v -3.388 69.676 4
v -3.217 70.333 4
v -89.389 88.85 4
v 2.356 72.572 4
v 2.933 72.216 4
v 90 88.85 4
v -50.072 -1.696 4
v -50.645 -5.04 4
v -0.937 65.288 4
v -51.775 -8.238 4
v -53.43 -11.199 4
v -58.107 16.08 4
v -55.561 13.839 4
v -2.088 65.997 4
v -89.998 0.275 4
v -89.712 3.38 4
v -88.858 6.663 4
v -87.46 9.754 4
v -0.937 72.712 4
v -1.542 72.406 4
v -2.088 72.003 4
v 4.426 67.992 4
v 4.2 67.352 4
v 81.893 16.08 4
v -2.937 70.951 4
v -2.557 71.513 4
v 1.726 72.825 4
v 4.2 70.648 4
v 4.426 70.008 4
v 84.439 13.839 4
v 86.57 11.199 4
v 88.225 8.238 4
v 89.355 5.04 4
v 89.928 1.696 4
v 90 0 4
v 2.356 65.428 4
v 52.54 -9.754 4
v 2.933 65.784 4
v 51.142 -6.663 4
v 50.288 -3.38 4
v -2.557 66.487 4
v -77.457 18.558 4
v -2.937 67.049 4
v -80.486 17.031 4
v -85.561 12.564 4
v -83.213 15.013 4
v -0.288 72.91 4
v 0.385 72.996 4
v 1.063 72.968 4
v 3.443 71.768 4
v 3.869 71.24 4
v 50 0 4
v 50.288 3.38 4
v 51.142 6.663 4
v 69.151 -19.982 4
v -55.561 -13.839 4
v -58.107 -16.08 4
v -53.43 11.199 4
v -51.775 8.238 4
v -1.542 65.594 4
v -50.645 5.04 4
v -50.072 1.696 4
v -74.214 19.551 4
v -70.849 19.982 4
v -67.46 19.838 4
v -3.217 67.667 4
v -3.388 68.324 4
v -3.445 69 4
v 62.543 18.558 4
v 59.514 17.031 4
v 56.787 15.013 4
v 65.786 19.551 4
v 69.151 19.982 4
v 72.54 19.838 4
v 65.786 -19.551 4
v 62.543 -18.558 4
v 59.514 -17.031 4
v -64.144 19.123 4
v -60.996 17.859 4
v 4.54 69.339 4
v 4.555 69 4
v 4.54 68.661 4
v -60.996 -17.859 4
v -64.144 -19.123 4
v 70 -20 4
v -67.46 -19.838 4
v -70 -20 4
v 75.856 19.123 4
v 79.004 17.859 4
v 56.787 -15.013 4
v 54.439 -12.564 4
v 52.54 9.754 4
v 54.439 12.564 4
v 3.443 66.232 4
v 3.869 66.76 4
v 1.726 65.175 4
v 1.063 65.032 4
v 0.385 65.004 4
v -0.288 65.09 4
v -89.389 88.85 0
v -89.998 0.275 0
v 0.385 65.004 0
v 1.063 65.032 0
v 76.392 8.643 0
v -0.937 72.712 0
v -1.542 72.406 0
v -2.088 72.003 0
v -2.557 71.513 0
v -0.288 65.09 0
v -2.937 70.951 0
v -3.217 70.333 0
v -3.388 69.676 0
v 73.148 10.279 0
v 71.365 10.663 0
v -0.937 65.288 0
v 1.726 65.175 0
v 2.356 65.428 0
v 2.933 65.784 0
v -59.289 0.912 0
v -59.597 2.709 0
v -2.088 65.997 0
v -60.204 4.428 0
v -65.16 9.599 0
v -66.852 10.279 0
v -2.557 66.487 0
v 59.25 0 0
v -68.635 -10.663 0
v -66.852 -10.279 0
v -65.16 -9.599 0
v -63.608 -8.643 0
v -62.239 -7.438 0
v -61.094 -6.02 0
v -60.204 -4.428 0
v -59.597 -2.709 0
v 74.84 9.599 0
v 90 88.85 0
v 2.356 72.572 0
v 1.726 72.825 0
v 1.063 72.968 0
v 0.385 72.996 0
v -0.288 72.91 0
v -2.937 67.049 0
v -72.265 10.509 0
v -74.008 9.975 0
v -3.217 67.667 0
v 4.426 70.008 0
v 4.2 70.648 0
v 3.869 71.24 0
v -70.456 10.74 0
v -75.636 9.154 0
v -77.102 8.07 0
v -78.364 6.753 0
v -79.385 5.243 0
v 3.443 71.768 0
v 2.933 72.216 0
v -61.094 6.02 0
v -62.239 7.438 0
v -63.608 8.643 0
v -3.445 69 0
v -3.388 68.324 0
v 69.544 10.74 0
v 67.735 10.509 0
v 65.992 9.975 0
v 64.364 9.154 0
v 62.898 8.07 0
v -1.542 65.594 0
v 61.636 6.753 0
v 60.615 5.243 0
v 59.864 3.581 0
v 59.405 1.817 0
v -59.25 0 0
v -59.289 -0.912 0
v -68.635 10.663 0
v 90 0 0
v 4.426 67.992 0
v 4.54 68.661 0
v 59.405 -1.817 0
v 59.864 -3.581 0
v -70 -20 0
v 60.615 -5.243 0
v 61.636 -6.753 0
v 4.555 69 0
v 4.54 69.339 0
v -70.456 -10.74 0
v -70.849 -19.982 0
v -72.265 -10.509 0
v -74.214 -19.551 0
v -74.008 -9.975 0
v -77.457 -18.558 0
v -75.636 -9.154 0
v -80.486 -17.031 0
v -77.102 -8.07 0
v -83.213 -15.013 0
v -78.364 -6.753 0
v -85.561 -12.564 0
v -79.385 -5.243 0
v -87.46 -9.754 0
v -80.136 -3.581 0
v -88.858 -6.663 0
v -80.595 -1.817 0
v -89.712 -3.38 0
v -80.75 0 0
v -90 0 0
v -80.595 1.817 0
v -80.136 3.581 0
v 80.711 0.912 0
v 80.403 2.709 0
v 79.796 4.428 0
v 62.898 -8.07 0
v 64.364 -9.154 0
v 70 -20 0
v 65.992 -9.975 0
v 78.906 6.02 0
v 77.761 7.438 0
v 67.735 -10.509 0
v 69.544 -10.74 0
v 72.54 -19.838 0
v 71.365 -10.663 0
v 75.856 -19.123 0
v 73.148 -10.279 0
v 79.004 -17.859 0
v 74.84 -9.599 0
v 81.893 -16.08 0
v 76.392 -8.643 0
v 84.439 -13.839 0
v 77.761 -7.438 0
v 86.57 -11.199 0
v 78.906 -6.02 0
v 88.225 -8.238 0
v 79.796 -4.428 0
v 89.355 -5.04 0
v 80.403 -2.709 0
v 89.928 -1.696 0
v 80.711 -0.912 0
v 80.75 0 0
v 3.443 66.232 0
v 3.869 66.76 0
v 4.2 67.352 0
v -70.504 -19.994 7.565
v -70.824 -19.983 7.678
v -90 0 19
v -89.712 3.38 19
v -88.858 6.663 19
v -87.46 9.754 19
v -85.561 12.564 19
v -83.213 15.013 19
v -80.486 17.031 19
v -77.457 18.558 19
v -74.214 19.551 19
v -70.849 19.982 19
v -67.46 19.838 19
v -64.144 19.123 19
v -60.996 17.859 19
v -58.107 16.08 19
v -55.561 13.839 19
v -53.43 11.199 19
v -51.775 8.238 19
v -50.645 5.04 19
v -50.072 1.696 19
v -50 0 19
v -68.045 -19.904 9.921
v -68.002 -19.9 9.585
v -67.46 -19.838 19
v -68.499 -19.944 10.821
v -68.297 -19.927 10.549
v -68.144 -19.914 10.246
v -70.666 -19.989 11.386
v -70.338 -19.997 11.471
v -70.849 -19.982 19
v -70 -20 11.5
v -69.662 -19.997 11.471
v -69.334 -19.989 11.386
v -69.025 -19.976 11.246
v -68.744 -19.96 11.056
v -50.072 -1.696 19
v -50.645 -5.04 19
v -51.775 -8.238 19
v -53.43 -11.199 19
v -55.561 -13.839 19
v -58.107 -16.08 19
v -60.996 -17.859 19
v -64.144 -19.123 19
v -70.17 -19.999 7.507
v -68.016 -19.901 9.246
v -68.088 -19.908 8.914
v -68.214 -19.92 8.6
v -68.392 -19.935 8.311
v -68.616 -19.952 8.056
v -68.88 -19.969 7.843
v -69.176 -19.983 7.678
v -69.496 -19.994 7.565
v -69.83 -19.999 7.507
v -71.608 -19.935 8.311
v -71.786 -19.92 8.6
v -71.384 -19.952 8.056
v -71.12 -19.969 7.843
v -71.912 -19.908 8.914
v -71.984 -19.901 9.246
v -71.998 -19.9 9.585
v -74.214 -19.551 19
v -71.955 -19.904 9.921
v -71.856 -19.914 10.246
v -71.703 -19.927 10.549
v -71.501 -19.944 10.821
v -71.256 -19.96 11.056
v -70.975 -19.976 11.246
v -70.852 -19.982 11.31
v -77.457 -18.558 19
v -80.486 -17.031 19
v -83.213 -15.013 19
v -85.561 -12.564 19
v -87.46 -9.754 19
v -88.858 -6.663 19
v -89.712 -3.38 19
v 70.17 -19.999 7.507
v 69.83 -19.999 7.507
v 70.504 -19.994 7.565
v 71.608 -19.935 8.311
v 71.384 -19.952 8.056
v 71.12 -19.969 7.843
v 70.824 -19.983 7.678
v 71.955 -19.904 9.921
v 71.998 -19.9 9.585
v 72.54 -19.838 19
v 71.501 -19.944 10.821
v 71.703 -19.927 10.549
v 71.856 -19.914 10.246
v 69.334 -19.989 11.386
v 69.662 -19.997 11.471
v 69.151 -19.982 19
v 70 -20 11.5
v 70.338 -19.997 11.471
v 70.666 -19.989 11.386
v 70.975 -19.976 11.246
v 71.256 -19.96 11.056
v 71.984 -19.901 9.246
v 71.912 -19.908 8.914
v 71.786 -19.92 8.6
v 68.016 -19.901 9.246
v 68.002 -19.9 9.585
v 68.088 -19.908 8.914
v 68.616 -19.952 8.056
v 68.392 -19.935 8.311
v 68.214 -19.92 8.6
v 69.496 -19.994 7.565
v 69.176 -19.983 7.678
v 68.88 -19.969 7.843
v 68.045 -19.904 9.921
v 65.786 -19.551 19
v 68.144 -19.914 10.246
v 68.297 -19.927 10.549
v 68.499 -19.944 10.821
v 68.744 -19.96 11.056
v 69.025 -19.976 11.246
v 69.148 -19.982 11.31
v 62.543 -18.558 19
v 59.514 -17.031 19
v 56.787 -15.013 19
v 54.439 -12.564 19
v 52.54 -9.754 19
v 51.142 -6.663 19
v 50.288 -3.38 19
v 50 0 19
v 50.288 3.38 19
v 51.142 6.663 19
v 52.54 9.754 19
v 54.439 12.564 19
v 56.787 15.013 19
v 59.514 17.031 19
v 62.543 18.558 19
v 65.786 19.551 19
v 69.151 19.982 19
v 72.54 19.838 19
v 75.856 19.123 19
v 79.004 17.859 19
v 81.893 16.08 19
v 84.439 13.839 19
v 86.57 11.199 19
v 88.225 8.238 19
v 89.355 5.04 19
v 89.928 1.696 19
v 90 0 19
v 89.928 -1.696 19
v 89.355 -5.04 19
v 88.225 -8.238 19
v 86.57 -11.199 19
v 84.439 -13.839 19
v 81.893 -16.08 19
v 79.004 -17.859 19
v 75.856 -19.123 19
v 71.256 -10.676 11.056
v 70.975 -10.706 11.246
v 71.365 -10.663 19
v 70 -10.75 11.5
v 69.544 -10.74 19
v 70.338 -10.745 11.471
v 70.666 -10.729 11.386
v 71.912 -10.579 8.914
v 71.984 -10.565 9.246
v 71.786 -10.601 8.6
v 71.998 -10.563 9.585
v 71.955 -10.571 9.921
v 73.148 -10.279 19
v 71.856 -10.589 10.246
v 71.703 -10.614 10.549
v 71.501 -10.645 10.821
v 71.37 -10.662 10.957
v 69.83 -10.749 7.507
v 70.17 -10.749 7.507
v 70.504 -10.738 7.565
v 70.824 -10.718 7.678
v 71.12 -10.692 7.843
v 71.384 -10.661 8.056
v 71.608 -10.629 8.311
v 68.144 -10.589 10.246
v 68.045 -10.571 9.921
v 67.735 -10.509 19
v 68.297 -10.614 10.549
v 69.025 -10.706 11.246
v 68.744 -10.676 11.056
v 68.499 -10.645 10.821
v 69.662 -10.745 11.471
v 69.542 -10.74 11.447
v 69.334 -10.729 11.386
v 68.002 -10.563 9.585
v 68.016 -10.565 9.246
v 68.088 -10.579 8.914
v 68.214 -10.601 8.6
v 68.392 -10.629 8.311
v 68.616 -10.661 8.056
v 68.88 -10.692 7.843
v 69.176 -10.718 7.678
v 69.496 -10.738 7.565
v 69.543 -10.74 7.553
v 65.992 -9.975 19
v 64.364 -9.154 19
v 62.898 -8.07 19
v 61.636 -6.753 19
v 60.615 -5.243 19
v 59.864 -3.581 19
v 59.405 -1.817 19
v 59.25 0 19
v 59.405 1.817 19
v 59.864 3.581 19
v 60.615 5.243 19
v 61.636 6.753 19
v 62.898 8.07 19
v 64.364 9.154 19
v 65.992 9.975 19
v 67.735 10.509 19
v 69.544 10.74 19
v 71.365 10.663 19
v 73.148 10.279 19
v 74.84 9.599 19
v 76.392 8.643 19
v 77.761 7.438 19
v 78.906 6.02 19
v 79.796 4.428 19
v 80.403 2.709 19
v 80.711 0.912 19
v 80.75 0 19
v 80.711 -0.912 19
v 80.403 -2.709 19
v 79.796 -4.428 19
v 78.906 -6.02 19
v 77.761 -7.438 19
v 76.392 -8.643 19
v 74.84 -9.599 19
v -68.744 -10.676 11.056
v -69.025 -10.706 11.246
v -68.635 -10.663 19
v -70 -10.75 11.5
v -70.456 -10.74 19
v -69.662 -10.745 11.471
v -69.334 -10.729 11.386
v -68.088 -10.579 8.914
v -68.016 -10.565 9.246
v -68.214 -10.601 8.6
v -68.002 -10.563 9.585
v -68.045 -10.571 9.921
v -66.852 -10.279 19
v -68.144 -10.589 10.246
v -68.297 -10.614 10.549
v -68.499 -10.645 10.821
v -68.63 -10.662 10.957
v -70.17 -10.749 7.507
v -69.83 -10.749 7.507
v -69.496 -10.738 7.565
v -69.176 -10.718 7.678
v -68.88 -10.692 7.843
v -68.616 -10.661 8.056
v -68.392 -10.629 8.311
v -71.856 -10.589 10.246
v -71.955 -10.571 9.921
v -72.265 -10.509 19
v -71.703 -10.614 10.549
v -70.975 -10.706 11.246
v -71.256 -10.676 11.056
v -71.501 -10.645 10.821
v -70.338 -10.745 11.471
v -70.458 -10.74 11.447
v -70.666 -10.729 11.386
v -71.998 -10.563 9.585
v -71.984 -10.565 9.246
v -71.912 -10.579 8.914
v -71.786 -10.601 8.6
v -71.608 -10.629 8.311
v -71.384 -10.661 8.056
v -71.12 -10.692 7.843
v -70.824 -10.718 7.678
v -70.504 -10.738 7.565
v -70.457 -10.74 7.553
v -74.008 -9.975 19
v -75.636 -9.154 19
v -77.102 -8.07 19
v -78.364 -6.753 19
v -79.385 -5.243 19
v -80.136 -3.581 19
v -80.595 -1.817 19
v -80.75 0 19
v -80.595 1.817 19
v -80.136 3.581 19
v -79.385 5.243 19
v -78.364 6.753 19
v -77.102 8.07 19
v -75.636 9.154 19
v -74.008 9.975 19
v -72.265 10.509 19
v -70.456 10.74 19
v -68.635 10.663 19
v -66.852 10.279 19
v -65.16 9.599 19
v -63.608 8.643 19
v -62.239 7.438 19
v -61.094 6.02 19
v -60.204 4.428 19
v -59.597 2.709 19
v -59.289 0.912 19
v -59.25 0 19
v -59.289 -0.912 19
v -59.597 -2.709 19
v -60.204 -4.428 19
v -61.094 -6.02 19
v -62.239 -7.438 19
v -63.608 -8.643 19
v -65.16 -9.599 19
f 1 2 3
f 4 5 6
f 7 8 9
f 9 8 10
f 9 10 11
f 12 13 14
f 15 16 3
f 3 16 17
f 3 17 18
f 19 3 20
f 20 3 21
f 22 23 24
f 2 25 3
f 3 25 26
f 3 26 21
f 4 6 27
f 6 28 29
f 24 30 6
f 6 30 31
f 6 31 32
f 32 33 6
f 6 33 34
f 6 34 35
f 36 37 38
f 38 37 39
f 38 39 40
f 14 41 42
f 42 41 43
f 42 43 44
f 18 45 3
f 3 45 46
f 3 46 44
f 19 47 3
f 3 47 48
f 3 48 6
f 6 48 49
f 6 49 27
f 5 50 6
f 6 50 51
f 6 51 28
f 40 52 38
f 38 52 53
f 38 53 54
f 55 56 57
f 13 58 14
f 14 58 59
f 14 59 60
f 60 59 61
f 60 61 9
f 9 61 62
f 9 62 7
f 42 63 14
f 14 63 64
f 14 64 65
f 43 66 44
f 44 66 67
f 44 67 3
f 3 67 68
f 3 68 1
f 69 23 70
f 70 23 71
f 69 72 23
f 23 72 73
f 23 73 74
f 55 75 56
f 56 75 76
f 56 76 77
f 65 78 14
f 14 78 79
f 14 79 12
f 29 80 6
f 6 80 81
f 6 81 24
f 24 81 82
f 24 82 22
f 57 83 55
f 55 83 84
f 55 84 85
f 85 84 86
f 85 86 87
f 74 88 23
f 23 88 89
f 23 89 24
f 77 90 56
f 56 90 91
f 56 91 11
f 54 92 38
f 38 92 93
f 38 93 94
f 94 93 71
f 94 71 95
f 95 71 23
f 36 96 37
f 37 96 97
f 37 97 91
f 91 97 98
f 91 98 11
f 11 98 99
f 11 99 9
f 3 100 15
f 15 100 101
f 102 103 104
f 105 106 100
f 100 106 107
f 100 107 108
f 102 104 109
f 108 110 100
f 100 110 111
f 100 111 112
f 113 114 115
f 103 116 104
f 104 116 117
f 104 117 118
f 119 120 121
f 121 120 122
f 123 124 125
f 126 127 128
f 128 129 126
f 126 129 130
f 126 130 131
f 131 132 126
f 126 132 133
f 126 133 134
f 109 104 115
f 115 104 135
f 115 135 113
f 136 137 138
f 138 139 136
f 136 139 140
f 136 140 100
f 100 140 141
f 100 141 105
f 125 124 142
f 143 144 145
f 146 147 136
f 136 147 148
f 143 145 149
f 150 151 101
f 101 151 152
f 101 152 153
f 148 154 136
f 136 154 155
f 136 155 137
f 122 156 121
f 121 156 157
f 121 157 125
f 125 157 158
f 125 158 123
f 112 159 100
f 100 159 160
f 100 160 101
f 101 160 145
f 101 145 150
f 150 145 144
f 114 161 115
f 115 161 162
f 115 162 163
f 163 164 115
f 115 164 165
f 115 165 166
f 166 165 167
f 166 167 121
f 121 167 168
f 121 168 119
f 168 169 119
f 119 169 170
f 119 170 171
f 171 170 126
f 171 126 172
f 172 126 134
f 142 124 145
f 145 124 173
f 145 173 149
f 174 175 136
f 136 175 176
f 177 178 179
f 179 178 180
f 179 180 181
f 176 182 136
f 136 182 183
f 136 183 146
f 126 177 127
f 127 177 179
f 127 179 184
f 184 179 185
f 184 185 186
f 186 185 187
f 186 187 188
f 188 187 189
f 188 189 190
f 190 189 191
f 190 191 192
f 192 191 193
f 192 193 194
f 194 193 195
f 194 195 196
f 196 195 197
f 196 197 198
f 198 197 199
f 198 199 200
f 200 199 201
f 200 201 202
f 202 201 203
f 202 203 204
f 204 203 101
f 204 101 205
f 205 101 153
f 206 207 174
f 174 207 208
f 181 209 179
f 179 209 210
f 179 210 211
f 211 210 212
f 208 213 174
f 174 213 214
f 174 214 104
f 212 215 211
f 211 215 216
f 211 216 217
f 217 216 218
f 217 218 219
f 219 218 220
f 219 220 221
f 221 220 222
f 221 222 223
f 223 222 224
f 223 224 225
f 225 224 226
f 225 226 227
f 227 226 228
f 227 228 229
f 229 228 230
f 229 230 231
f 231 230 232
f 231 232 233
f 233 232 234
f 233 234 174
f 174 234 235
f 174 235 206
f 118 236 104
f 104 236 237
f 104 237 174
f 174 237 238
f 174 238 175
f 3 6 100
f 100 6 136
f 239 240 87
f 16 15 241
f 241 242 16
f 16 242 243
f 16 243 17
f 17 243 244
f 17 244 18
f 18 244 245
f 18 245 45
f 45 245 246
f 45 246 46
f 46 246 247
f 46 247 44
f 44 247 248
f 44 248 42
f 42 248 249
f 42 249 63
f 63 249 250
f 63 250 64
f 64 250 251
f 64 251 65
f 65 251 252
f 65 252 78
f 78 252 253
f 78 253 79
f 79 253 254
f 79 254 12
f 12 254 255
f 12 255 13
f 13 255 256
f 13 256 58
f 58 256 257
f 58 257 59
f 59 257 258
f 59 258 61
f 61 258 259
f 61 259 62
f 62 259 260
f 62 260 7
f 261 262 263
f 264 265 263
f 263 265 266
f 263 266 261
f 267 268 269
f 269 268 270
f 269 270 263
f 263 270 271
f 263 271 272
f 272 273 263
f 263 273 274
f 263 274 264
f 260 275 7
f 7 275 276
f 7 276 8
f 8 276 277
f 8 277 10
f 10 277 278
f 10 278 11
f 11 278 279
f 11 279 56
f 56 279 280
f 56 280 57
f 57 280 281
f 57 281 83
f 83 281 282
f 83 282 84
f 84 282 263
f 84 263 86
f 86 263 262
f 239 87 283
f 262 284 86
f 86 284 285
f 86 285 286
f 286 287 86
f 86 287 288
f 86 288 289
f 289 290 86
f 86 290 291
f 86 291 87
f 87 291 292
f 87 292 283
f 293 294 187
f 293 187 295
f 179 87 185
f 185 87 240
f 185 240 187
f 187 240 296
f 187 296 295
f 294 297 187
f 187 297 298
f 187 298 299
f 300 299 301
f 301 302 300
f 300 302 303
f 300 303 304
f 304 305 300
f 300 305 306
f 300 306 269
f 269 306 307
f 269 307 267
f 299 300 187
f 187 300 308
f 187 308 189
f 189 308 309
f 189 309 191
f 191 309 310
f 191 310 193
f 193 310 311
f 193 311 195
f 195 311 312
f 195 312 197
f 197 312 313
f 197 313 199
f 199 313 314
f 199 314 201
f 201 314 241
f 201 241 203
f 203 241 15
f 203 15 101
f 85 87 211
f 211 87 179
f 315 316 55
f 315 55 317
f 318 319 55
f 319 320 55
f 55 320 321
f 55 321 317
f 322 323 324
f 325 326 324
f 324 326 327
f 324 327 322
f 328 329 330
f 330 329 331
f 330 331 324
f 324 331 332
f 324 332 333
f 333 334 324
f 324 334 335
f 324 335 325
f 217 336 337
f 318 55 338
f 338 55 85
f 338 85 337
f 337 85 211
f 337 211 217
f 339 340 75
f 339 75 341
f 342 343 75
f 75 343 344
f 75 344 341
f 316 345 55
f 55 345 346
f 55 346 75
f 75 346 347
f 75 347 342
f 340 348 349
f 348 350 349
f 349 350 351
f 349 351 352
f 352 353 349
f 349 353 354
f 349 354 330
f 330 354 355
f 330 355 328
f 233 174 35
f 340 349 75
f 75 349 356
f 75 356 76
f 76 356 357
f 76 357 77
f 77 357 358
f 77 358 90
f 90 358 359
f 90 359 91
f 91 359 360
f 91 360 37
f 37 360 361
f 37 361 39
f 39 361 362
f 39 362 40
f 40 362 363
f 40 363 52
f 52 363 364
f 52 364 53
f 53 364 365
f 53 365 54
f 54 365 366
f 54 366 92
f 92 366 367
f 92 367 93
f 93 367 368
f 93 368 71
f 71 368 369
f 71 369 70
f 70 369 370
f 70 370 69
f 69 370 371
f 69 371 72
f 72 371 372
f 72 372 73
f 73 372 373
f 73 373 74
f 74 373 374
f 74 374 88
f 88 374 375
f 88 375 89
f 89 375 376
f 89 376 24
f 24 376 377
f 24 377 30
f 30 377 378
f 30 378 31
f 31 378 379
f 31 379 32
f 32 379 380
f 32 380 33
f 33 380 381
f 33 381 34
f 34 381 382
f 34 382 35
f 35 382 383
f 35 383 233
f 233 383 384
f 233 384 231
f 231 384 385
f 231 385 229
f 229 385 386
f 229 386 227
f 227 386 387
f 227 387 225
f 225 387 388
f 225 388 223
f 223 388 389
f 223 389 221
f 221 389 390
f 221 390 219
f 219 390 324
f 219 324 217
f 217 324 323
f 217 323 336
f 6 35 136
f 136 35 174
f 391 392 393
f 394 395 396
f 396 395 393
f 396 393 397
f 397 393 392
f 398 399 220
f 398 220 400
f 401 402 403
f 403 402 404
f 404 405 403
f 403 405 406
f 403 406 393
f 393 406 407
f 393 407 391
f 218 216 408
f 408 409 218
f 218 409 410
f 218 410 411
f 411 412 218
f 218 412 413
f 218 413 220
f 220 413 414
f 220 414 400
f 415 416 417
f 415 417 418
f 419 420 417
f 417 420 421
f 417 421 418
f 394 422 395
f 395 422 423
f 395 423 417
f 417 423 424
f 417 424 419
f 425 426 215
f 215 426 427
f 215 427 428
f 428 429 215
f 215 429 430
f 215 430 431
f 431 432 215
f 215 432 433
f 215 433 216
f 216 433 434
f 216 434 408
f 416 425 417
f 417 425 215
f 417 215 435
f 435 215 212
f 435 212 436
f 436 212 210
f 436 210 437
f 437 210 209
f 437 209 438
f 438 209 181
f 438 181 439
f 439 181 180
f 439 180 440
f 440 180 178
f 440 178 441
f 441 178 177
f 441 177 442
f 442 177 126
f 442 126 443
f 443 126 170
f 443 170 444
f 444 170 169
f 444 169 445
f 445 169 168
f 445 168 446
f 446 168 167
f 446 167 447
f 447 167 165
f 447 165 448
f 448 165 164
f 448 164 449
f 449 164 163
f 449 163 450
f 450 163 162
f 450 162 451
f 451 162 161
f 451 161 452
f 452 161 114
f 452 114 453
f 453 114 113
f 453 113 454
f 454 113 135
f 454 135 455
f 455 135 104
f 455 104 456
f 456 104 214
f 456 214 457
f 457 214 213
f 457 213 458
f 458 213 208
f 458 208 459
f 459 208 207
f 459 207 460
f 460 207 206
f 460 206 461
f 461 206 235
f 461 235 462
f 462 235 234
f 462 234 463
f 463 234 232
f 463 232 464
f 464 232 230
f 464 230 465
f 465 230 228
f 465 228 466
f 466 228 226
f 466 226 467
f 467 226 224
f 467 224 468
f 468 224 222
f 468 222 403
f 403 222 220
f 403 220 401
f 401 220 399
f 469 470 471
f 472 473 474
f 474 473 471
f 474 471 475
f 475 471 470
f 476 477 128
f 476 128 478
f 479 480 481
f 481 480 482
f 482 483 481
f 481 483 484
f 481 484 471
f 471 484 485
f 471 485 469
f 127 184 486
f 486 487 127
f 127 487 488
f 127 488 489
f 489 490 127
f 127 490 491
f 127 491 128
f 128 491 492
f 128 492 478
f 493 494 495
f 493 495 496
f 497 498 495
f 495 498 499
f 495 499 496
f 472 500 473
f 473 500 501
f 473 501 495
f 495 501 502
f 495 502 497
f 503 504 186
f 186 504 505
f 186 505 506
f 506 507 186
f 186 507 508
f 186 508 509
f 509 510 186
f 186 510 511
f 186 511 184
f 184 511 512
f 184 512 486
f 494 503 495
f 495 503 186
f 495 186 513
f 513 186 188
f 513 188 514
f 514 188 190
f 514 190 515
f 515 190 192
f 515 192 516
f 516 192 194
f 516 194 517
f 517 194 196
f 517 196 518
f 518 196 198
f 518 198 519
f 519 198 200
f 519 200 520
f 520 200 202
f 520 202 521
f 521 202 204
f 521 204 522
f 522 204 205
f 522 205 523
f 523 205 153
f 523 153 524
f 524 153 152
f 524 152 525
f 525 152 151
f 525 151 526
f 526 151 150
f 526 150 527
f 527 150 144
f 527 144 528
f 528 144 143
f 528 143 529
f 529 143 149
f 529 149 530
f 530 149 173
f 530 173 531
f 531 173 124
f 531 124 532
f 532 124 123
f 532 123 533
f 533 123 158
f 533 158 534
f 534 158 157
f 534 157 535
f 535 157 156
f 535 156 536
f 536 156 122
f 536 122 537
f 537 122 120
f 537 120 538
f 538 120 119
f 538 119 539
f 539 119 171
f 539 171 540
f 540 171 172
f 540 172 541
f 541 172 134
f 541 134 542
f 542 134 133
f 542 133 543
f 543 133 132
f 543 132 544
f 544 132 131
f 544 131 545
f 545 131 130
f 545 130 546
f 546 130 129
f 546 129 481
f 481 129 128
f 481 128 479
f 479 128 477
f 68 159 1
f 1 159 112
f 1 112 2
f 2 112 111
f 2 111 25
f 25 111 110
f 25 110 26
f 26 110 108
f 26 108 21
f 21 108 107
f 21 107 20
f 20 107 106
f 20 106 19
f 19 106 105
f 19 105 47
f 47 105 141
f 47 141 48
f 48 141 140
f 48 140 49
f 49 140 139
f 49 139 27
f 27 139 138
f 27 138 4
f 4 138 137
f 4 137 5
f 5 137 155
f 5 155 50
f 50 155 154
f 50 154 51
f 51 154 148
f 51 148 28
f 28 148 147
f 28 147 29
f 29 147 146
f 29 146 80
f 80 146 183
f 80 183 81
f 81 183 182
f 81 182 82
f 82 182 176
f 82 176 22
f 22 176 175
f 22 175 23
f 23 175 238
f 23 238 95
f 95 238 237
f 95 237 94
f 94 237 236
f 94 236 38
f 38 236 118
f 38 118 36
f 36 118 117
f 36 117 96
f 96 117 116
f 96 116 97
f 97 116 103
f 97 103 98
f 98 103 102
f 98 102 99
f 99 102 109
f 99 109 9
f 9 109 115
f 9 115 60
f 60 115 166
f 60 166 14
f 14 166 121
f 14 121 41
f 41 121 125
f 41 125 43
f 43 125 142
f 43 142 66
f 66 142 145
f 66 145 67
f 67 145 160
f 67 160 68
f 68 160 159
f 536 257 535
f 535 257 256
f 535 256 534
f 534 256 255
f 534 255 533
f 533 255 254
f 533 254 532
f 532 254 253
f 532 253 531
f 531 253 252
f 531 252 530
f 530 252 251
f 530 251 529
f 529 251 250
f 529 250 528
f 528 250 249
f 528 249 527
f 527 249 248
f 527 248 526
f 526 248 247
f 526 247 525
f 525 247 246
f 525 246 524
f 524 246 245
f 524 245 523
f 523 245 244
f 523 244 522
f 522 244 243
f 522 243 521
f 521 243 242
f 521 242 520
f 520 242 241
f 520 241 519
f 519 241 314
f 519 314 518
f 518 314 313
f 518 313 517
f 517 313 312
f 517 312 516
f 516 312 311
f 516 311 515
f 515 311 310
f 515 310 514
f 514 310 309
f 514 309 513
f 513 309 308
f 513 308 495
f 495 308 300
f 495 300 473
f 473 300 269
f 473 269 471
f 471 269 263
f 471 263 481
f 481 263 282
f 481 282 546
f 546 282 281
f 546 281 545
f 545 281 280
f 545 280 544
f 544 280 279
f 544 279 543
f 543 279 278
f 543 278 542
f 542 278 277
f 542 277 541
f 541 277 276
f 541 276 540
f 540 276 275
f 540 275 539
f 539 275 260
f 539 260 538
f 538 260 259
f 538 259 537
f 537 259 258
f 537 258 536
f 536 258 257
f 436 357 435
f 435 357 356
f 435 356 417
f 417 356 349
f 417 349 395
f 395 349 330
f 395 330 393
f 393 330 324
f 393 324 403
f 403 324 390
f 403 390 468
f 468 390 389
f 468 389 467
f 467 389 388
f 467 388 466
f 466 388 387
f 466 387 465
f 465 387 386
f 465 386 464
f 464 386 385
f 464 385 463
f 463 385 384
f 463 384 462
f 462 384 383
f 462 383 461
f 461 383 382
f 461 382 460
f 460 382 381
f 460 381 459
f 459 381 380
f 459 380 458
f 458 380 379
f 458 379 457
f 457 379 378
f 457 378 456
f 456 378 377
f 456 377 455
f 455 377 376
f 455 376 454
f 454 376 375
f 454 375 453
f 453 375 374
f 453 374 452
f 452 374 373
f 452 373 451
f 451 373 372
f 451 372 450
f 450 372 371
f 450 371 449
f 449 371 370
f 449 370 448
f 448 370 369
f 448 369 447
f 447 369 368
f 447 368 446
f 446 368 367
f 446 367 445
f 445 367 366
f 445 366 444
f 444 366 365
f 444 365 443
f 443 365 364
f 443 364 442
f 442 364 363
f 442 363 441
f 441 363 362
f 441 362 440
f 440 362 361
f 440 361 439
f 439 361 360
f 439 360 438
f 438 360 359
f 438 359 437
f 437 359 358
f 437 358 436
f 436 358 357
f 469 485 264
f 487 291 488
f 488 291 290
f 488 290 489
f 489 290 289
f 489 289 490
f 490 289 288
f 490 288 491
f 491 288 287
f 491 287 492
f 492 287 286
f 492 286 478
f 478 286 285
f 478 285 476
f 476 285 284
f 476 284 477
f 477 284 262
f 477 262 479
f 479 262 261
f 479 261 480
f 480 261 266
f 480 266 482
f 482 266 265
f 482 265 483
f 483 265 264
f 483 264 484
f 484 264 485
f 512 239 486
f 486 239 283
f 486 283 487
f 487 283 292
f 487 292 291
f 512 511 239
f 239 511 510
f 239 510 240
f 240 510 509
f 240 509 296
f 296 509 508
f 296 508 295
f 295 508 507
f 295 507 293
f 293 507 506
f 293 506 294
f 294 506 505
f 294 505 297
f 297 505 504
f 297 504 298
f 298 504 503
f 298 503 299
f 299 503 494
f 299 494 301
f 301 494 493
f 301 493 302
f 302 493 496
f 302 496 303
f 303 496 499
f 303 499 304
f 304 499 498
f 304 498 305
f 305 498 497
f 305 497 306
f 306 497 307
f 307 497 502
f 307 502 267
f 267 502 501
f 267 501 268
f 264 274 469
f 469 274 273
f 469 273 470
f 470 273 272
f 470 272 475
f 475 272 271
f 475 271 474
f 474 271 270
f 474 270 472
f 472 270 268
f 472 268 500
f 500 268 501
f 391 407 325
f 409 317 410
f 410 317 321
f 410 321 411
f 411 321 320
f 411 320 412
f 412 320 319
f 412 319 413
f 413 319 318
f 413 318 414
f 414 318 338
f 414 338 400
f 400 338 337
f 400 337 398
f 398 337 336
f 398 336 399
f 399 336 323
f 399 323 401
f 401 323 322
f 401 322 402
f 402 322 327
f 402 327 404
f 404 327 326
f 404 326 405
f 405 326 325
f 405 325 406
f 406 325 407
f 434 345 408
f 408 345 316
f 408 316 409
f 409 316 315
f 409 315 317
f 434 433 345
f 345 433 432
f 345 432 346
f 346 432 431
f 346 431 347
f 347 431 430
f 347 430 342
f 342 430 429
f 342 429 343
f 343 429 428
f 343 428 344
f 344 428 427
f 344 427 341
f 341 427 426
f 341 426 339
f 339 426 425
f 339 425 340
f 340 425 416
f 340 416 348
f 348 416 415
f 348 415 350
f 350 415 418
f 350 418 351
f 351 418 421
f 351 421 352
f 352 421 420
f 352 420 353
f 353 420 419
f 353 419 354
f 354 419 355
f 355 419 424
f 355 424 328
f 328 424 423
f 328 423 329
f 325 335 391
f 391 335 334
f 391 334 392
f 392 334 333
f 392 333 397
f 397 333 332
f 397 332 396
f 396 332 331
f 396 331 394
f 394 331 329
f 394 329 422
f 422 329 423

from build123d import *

# Parameters (mm, degrees)
SKETCH1_R           = 10.75
BOSS_EXTRUDE1_DEPTH = 4
SKETCH2_R           = 4
CUT_EXTRUDE1_DEPTH  = 10
SKETCH3_R           = 20
SKETCH3_R_2         = 10.75
BOSS_EXTRUDE2_DEPTH = 19
SKETCH4_R           = 2
CUT_EXTRUDE2_DEPTH  = 20


with BuildPart() as part:
    # Sketch1 → Boss-Extrude1 (new body)
    with BuildSketch(Plane.XY):
        with BuildLine():
            Line((-70, -20), (70, -20))
            ThreePointArc((70, -20), (84.142136, -14.142136), (90, 0))
            Line((90, 0), (90, 88.85))
            Line((90, 88.85), (-89.389486, 88.85))
            Line((-89.389486, 88.85), (-90, 0))
            ThreePointArc((-90, 0), (-84.142136, -14.142136), (-70, -20))
        make_face()
        with Locations((70, 0)):
            Circle(SKETCH1_R, mode=Mode.SUBTRACT)
        with Locations((-70, 0)):
            Circle(SKETCH1_R, mode=Mode.SUBTRACT)
    extrude(amount=BOSS_EXTRUDE1_DEPTH)

    # Sketch2 → Cut-Extrude1 (cut)
    with BuildSketch(Plane.XY):
        with Locations((0.554741, 69)):
            Circle(SKETCH2_R)
    extrude(amount=CUT_EXTRUDE1_DEPTH, mode=Mode.SUBTRACT)

    # Sketch3 → Boss-Extrude2 (add)
    with BuildSketch(Plane.XY):
        with Locations((-70, 0)):
            Circle(SKETCH3_R)
        with Locations((-70, 0)):
            Circle(SKETCH3_R_2, mode=Mode.SUBTRACT)
        with Locations((70, 0)):
            Circle(SKETCH3_R)
        with Locations((70, 0)):
            Circle(SKETCH3_R_2, mode=Mode.SUBTRACT)
    extrude(amount=BOSS_EXTRUDE2_DEPTH)

    # Sketch4 → Cut-Extrude2 (cut)
    with BuildSketch(Plane(origin=(0, 0, 0), x_dir=(1, 0, 0), z_dir=(0, 1, 0))):
        with Locations((-70, -9.5)):
            Circle(SKETCH4_R)
        with Locations((70, -9.5)):
            Circle(SKETCH4_R)
    extrude(amount=-CUT_EXTRUDE2_DEPTH, mode=Mode.SUBTRACT)


solid = part.part
